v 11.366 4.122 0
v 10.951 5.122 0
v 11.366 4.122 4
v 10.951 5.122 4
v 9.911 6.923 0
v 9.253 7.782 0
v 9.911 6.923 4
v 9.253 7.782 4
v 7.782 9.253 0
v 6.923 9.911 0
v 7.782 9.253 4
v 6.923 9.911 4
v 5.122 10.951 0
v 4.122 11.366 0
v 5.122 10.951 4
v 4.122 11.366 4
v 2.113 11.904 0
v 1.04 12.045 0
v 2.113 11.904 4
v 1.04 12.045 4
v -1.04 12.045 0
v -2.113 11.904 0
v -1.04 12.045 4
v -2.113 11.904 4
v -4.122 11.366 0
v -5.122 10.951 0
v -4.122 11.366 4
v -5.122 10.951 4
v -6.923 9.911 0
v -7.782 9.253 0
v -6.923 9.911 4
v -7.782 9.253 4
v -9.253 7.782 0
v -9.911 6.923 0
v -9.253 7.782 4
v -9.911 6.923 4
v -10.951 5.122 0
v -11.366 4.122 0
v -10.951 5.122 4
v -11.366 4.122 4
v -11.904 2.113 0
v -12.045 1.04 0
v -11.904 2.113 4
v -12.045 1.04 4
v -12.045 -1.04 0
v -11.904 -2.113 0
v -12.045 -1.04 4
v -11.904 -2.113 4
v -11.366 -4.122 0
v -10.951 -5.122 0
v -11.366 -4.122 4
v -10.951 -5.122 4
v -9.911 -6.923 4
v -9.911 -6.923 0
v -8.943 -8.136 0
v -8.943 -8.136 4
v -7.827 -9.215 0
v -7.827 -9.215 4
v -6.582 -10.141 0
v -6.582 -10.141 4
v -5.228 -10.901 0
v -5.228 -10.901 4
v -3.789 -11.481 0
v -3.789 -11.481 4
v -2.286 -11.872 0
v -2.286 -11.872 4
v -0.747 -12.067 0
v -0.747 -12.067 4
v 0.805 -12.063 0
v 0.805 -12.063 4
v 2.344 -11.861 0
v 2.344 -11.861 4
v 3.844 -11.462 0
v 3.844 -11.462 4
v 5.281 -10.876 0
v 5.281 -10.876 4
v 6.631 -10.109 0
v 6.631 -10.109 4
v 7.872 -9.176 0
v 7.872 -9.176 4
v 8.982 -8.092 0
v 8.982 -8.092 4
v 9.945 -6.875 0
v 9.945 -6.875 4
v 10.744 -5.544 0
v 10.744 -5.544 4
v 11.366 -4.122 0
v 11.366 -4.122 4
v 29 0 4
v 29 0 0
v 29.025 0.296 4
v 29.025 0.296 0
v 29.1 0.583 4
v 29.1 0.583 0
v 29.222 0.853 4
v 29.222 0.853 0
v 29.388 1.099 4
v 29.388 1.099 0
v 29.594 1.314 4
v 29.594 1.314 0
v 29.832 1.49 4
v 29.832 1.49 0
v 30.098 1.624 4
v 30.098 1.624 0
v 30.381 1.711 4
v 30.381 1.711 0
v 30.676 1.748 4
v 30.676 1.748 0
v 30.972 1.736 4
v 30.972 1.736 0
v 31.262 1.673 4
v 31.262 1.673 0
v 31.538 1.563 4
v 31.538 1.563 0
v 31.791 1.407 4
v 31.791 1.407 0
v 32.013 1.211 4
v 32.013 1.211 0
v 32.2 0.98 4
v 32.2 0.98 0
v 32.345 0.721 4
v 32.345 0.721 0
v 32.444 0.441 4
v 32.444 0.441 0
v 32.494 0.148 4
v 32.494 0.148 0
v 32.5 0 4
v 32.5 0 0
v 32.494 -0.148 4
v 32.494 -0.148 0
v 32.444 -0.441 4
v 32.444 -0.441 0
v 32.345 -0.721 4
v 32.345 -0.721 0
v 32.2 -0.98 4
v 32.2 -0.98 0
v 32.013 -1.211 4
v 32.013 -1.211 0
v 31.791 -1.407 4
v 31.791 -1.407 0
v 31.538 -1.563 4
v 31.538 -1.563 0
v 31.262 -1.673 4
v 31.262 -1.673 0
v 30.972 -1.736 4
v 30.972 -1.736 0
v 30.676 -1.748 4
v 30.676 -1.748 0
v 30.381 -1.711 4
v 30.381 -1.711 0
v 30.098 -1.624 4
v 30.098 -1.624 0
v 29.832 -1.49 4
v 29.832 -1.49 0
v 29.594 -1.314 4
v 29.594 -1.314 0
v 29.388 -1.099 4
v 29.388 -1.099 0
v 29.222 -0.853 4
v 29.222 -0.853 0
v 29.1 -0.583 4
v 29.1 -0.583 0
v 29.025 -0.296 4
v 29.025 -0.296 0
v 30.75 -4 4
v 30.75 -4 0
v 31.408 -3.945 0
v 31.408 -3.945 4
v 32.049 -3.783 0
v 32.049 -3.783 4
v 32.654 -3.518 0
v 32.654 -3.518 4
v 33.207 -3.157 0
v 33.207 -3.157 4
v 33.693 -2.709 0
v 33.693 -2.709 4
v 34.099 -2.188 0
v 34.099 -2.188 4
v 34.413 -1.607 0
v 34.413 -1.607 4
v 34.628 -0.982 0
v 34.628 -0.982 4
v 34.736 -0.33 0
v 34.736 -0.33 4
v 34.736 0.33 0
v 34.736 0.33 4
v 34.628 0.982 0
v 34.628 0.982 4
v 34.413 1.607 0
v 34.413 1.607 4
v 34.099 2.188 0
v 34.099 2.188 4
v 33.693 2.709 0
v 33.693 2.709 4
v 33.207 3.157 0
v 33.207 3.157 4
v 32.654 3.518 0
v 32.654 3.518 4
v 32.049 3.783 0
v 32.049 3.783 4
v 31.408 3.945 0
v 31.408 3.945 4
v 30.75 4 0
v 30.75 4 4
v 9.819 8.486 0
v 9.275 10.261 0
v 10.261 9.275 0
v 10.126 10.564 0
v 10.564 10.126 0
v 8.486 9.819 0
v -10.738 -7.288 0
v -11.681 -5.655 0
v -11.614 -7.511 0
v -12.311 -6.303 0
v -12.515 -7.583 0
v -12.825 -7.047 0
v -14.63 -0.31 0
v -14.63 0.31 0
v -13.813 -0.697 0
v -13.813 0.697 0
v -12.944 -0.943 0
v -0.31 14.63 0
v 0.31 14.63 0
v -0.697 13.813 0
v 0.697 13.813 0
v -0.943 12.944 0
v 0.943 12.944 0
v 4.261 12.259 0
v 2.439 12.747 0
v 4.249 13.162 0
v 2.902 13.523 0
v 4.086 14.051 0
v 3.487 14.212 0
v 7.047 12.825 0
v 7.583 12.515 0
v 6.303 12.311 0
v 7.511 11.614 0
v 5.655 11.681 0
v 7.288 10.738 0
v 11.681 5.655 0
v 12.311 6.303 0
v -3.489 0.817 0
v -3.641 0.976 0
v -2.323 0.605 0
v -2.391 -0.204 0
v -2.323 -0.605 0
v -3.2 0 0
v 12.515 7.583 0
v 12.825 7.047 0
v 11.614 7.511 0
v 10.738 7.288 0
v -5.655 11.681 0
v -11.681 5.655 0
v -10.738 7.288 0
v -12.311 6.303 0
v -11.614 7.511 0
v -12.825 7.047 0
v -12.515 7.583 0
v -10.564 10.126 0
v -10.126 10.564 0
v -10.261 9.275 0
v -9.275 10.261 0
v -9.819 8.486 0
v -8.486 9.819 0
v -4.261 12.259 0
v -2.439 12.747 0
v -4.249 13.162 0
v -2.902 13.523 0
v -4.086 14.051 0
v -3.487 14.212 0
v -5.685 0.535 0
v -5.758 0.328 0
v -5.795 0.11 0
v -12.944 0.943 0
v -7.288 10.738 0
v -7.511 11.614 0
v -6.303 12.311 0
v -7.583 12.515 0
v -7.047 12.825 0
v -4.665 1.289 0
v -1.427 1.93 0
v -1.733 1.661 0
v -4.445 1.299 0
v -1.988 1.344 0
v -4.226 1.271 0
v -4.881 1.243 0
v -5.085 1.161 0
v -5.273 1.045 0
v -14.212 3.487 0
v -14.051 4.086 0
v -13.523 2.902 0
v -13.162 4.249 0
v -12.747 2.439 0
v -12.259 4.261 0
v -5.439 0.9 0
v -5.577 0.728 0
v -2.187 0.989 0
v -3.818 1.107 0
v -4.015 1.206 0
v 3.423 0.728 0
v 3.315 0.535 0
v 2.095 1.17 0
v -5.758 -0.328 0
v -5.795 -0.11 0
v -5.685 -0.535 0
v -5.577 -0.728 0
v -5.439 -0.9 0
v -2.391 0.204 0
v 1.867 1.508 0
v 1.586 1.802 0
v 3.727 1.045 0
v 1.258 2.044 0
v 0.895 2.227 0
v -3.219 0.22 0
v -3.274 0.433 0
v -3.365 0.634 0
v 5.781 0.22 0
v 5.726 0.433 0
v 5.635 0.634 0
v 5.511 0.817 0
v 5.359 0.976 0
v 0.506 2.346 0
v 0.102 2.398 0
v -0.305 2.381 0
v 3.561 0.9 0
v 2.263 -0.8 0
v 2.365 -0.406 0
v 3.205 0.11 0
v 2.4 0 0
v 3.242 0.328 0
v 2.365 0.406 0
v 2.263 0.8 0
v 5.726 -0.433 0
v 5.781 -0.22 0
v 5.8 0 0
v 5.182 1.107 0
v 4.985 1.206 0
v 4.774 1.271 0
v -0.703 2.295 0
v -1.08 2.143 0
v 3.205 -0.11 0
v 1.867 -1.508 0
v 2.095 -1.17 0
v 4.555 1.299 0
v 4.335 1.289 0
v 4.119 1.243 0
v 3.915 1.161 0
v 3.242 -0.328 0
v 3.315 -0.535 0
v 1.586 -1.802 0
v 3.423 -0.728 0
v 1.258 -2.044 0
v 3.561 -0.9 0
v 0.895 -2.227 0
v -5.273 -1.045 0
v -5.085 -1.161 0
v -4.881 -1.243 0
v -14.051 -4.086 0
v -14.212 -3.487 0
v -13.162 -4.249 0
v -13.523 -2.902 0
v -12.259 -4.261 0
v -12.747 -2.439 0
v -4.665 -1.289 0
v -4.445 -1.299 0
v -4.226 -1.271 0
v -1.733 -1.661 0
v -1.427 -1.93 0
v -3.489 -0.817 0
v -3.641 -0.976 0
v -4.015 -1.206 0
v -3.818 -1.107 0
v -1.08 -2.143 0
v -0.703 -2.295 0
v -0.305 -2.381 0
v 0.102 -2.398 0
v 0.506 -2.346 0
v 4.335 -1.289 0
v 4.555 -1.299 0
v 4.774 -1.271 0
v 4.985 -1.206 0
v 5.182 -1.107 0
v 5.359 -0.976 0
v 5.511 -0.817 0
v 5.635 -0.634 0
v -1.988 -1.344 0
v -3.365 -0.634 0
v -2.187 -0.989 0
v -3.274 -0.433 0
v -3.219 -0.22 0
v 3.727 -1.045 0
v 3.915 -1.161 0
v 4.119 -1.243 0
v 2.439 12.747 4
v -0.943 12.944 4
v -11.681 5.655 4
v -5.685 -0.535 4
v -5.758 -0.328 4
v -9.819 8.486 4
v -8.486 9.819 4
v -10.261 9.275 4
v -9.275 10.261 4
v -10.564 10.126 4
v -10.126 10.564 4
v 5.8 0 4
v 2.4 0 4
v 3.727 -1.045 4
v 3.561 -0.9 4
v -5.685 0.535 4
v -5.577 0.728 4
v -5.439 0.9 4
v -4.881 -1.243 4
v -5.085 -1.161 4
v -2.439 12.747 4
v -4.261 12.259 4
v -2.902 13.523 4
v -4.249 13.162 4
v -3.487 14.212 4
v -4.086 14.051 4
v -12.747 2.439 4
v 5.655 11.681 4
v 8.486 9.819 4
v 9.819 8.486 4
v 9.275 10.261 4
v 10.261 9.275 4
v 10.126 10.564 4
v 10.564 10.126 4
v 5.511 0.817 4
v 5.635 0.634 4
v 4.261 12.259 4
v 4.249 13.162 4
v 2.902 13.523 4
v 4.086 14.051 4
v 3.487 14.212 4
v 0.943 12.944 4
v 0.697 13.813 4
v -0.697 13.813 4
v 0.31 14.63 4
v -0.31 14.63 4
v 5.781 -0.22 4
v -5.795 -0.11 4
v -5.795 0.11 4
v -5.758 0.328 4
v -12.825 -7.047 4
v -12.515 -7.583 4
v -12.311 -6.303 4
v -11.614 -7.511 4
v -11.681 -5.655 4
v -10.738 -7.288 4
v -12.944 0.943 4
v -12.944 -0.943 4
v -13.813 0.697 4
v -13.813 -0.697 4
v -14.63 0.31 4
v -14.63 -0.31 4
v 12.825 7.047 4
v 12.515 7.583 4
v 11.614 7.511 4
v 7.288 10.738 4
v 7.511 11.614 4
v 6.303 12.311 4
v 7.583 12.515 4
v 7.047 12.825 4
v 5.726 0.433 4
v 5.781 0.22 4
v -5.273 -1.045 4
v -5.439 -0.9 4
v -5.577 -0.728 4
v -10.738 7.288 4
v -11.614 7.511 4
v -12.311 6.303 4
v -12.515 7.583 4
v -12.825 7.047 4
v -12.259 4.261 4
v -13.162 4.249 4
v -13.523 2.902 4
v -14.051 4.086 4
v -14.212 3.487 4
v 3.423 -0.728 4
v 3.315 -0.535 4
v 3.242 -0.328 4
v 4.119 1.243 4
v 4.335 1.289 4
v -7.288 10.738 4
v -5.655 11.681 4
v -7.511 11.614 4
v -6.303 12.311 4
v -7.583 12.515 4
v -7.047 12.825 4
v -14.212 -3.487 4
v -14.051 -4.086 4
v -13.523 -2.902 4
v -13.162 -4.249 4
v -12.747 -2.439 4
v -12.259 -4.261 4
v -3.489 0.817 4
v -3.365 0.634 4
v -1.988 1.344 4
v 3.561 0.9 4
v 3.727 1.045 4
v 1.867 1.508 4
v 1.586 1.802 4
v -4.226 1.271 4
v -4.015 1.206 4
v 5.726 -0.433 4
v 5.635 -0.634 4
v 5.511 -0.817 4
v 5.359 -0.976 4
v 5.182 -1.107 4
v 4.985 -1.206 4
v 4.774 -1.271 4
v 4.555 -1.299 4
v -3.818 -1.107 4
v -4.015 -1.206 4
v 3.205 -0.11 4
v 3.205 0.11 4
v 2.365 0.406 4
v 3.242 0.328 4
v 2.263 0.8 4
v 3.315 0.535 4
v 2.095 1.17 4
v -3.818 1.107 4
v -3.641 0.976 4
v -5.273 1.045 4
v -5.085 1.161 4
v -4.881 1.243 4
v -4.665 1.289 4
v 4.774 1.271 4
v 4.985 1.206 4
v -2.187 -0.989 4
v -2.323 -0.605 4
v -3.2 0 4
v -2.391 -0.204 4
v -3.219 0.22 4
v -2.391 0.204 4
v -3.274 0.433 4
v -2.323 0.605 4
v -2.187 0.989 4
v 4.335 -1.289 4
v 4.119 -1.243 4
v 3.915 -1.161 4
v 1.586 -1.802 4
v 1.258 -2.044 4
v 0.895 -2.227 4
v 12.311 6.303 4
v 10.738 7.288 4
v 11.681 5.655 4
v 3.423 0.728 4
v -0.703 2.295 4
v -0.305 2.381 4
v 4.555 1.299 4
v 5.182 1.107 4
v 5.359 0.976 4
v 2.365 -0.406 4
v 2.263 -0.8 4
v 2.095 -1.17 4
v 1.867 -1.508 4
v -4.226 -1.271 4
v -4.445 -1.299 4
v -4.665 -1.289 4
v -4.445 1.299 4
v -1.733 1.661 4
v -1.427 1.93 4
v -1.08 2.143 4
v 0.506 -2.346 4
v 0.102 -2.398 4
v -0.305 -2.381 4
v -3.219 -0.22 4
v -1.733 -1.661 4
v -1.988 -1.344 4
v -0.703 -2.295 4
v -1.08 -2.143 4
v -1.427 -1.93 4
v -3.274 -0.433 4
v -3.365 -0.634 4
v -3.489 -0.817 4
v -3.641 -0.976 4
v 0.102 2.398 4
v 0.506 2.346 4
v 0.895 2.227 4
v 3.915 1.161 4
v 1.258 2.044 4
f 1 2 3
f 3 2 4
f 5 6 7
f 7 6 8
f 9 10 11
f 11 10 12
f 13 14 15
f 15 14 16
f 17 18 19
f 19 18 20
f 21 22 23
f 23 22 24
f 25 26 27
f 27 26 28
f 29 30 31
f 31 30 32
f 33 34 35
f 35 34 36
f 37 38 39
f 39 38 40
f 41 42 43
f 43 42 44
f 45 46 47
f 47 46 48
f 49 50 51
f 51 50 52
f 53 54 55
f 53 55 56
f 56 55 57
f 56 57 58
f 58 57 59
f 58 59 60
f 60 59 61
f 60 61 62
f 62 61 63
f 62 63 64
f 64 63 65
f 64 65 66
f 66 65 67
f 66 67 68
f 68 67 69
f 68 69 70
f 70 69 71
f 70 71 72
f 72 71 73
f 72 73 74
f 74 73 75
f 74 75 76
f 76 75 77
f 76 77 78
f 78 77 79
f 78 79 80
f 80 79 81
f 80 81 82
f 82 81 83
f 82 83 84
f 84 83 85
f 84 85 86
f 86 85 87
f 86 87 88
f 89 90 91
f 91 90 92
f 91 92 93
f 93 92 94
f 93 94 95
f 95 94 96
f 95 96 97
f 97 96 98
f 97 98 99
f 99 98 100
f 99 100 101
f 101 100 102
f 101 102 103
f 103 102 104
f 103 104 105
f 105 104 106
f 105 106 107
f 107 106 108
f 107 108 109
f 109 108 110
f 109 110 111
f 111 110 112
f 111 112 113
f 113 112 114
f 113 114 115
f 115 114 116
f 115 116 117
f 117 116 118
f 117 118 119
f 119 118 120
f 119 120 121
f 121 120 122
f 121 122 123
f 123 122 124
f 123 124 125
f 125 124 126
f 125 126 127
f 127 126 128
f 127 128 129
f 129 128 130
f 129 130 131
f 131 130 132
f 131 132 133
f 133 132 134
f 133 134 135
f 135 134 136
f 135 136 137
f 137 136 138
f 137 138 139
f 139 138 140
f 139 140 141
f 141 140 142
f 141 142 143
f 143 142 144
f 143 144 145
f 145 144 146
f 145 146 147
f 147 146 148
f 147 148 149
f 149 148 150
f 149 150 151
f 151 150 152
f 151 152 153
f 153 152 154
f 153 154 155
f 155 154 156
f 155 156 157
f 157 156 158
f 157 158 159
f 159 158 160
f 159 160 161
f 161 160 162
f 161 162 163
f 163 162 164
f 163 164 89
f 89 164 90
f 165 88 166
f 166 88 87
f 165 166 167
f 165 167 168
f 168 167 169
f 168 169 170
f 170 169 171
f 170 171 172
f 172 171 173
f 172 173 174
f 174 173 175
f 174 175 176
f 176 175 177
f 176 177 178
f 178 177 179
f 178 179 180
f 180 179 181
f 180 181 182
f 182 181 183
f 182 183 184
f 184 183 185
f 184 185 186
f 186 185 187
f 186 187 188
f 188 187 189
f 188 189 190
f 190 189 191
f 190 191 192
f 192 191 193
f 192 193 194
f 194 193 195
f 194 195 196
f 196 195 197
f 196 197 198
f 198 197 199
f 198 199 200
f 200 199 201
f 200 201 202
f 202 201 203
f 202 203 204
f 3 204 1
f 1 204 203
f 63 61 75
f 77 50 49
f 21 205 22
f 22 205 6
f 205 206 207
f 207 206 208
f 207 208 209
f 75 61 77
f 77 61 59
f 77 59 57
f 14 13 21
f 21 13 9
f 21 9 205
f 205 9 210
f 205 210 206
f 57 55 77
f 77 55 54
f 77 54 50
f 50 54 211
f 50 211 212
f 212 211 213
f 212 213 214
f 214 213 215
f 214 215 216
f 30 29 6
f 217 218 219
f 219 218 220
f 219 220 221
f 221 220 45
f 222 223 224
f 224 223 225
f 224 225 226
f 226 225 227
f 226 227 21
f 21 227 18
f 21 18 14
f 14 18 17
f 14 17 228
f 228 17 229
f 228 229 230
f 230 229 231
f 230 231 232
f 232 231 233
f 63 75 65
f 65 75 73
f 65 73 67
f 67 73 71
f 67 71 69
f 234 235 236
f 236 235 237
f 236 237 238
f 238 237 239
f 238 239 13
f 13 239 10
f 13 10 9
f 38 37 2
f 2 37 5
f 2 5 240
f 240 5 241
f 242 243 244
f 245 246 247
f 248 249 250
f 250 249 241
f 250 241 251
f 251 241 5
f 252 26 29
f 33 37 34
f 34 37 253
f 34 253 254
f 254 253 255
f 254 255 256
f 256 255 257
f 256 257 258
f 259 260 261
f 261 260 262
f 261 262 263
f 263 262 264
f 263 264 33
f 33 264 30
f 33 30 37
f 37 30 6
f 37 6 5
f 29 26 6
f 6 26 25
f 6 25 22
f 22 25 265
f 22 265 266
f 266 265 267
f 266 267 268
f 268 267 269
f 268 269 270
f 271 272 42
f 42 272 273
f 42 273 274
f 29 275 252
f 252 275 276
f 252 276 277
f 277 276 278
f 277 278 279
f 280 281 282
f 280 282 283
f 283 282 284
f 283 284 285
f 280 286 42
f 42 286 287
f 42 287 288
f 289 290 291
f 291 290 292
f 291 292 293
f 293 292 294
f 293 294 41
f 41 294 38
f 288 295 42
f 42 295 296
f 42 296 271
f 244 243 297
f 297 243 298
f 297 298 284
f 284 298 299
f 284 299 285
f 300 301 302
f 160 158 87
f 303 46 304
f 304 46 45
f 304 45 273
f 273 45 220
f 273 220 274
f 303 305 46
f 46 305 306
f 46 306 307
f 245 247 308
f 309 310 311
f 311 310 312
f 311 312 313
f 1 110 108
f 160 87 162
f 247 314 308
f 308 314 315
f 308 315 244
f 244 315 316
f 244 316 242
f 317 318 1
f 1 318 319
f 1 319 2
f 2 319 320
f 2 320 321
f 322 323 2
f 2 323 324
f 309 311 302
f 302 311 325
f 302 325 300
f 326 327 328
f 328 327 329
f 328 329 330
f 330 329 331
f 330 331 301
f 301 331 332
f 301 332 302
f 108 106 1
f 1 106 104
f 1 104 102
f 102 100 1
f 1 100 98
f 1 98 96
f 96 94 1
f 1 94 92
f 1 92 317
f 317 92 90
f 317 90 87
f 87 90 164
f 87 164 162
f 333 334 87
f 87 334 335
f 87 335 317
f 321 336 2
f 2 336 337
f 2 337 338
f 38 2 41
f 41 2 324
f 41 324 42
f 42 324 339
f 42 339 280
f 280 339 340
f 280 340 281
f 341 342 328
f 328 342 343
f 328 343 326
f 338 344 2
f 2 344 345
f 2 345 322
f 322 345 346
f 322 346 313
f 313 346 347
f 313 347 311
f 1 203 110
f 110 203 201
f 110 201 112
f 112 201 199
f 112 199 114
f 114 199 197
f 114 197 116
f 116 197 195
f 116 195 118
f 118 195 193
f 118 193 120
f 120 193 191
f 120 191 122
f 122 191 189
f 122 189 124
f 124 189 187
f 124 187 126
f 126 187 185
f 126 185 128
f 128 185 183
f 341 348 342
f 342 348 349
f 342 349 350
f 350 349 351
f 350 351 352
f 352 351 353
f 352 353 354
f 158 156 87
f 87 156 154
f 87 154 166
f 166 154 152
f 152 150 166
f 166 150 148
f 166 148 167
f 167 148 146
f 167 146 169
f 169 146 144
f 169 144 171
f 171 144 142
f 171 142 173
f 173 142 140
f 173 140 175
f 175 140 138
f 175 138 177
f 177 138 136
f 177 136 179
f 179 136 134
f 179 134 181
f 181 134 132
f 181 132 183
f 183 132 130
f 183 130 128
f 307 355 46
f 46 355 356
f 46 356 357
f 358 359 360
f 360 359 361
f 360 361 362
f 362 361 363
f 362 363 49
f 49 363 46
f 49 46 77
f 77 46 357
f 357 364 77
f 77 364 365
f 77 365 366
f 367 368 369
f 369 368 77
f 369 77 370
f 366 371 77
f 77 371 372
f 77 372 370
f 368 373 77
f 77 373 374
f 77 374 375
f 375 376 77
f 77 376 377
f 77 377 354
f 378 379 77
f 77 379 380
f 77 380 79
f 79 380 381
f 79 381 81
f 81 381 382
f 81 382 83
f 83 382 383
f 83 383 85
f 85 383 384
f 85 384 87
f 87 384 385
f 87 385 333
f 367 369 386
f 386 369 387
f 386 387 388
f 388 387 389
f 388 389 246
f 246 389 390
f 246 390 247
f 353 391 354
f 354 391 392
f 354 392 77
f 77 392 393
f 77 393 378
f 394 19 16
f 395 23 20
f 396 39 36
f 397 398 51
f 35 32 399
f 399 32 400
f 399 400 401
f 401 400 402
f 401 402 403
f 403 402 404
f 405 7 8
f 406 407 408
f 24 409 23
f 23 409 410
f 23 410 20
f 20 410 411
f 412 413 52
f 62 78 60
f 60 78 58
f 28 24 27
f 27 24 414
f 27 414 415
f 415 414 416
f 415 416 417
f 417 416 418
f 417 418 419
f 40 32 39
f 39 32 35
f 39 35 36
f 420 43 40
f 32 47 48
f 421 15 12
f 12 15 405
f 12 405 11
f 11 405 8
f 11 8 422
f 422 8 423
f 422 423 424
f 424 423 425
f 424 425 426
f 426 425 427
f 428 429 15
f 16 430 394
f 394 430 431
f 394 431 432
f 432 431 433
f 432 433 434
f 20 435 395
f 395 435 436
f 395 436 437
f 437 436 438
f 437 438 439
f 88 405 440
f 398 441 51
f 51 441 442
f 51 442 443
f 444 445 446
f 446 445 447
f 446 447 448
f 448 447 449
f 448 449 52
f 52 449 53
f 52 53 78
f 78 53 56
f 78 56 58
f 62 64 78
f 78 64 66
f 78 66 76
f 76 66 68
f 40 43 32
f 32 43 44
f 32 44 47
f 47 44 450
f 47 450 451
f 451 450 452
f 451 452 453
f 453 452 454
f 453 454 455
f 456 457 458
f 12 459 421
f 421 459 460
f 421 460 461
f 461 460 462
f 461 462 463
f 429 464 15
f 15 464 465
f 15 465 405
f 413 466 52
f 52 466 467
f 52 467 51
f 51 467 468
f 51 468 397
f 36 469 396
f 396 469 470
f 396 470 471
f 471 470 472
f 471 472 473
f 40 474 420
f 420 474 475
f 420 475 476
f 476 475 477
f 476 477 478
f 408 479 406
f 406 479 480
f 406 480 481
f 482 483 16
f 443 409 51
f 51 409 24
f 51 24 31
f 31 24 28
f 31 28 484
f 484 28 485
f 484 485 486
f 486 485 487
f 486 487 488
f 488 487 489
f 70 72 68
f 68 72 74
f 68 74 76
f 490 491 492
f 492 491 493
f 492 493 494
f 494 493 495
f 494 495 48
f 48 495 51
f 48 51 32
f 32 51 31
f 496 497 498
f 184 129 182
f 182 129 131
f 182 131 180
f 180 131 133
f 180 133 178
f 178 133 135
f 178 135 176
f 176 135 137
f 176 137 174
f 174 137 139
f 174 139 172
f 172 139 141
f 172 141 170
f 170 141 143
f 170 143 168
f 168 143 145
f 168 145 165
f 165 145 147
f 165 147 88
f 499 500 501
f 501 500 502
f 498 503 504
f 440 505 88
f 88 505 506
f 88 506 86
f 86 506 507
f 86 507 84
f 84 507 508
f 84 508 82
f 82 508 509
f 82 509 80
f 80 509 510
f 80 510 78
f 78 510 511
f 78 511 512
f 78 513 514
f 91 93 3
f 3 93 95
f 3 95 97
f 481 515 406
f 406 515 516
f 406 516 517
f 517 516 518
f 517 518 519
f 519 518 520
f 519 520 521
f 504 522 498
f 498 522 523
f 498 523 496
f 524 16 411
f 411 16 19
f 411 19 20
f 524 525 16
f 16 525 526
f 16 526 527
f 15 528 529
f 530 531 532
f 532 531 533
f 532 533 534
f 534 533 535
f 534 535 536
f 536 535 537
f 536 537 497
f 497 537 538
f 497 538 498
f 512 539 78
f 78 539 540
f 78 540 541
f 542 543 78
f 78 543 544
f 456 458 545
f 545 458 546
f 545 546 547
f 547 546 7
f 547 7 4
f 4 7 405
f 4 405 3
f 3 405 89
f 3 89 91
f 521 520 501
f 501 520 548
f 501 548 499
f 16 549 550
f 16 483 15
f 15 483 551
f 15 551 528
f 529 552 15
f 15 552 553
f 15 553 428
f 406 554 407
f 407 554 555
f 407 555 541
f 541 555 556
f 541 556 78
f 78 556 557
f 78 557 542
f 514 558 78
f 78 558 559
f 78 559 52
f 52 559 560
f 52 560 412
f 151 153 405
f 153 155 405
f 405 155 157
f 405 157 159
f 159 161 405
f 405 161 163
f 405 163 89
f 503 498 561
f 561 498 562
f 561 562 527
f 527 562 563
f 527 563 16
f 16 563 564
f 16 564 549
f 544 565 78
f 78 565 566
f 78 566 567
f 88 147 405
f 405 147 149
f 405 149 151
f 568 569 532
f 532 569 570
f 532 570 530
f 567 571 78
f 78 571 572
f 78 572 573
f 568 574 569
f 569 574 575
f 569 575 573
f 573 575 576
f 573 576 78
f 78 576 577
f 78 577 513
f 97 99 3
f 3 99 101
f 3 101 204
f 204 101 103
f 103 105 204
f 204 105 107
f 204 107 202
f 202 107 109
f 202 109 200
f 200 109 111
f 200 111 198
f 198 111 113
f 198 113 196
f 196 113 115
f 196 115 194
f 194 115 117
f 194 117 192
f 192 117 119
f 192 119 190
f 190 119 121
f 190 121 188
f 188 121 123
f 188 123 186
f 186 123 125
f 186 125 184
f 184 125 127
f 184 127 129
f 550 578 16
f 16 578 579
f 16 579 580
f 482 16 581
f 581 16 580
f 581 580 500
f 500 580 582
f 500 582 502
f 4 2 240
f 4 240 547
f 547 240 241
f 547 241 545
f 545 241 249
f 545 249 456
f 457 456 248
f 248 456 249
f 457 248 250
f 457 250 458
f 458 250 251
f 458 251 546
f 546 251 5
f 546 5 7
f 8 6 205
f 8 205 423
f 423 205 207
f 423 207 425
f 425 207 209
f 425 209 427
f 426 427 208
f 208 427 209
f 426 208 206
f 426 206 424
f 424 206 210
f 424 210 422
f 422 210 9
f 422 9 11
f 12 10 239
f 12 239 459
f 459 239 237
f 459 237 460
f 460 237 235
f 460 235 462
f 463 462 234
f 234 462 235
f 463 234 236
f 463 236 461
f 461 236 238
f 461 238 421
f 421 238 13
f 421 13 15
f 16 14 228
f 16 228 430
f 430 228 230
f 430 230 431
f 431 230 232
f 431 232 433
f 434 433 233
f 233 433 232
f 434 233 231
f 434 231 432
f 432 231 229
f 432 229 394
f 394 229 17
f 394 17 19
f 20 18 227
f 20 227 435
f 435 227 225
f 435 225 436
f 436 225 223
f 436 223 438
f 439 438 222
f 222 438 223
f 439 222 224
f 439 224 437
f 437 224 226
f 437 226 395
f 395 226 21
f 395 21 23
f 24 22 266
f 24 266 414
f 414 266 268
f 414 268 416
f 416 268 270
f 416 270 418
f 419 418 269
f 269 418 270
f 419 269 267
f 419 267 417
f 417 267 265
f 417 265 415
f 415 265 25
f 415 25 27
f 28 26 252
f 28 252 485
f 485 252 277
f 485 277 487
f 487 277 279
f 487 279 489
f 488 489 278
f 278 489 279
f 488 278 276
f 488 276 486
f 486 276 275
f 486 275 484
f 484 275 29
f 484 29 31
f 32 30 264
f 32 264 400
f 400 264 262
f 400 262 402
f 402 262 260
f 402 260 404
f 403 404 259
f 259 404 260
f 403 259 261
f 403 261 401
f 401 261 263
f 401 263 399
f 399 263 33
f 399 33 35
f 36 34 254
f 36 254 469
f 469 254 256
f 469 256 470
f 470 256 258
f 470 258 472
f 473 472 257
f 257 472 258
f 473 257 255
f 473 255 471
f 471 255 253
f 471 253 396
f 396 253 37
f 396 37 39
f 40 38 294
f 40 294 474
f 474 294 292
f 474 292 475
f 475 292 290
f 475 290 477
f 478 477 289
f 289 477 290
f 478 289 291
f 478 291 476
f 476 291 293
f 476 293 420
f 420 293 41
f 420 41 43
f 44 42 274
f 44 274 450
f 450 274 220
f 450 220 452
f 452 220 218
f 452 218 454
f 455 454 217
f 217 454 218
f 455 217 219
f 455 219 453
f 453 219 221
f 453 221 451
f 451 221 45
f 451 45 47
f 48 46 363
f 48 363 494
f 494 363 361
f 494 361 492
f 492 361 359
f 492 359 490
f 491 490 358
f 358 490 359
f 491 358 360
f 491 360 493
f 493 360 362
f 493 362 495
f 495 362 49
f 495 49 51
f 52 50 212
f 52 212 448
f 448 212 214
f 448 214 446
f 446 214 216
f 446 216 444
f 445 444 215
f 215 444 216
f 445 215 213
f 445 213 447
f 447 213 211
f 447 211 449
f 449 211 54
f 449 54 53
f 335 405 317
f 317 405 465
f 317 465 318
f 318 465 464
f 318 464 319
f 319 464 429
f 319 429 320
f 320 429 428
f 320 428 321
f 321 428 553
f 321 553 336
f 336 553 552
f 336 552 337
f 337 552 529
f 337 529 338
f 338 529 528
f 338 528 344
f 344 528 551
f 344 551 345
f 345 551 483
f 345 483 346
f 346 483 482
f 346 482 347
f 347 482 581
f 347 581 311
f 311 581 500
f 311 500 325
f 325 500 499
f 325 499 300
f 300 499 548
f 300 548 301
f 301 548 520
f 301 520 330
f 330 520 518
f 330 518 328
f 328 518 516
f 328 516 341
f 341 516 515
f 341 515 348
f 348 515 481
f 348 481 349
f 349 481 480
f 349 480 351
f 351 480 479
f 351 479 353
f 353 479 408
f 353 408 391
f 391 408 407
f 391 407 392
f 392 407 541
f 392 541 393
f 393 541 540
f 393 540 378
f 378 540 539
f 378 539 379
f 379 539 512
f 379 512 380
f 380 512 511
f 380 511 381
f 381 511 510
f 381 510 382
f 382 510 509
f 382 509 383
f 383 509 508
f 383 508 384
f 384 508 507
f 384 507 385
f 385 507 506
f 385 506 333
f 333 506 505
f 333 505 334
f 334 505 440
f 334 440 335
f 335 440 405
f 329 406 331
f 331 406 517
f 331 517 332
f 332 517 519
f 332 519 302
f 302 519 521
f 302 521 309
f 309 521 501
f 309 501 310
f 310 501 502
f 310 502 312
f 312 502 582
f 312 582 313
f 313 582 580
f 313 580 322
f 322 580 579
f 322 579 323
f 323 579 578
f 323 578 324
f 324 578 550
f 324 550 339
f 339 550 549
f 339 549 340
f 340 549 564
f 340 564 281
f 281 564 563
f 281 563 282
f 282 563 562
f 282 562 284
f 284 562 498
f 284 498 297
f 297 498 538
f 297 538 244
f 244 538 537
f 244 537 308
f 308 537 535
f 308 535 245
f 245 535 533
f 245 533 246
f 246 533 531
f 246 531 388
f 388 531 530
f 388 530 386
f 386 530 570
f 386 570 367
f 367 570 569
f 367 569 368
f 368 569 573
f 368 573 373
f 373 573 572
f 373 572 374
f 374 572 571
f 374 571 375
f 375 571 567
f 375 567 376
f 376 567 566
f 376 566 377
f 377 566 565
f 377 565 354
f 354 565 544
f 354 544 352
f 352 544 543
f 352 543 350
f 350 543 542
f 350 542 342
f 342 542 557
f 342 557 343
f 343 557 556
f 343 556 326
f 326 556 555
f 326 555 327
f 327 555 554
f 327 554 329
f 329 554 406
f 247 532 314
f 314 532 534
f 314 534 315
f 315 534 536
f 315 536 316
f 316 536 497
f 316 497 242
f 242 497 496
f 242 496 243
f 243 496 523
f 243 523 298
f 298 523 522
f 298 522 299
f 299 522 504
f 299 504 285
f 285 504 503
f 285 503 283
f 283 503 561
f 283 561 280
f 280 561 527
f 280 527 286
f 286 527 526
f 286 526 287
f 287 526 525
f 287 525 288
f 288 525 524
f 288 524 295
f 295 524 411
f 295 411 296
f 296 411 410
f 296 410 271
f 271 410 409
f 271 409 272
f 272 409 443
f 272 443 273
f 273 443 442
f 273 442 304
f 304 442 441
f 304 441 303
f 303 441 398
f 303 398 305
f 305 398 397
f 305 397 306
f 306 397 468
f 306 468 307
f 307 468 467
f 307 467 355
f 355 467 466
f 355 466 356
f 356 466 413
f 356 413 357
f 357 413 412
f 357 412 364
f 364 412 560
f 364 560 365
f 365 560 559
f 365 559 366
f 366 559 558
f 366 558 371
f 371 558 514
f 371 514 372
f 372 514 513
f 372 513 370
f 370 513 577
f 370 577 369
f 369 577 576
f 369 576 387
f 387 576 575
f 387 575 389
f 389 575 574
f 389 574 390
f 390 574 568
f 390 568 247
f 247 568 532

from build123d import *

# Parameters (mm, degrees)
SKETCH1_R           = 1.75
BOSS_EXTRUDE1_DEPTH = 4
SKETCH2_R           = 1.75
CUT_EXTRUDE2_DEPTH  = 38.915688046
SKETCH3_R           = 2.4
SKETCH3_R_2         = 1.3
CUT_EXTRUDE3_DEPTH  = 38.915688046


with BuildPart() as part:
    # Sketch1 → Boss-Extrude1 (new body)
    with BuildSketch(Plane.XY):
        with BuildLine():
            Line((0.31, 14.63), (-0.31, 14.63))
            ThreePointArc((-0.31, 14.63), (-0.838273314, 13.383704325), (-1.04, 12.04518576))
            ThreePointArc((-1.04, 12.04518576), (-1.578061664, 11.986568374), (-2.112960617, 11.903927815))
            ThreePointArc((-2.112960617, 11.903927815), (-2.65424773, 13.144626757), (-3.487085624, 14.211728743))
            Line((-3.487085624, 14.211728743), (-4.085959636, 14.051260935))
            ThreePointArc((-4.085959636, 14.051260935), (-4.273667417, 12.71070456), (-4.122086336, 11.365584201))
            ThreePointArc((-4.122086336, 11.365584201), (-4.626642697, 11.169703548), (-5.12192646, 10.951436862))
            ThreePointArc((-5.12192646, 10.951436862), (-5.965886177, 12.009764599), (-7.046532125, 12.824951657))
            Line((-7.046532125, 12.824951657), (-7.583467875, 12.514951657))
            ThreePointArc((-7.583467875, 12.514951657), (-7.417818147, 11.171491285), (-6.9232593, 9.911436862))
            ThreePointArc((-6.9232593, 9.911436862), (-7.359925677, 9.591641884), (-7.781841479, 9.252623584))
            ThreePointArc((-7.781841479, 9.252623584), (-8.870959341, 10.05645683), (-10.125769107, 10.564175311))
            Line((-10.125769107, 10.564175311), (-10.564175311, 10.125769107))
            ThreePointArc((-10.564175311, 10.125769107), (-10.05645683, 8.870959341), (-9.252623584, 7.781841479))
            ThreePointArc((-9.252623584, 7.781841479), (-9.591641884, 7.359925677), (-9.911436862, 6.9232593))
            ThreePointArc((-9.911436862, 6.9232593), (-11.171491285, 7.417818147), (-12.514951657, 7.583467875))
            Line((-12.514951657, 7.583467875), (-12.824951657, 7.046532125))
            ThreePointArc((-12.824951657, 7.046532125), (-12.009764599, 5.965886177), (-10.951436862, 5.12192646))
            ThreePointArc((-10.951436862, 5.12192646), (-11.169703548, 4.626642697), (-11.365584201, 4.122086336))
            ThreePointArc((-11.365584201, 4.122086336), (-12.71070456, 4.273667417), (-14.051260935, 4.085959636))
            Line((-14.051260935, 4.085959636), (-14.211728743, 3.487085624))
            ThreePointArc((-14.211728743, 3.487085624), (-13.144626757, 2.65424773), (-11.903927815, 2.112960617))
            ThreePointArc((-11.903927815, 2.112960617), (-11.986568374, 1.578061664), (-12.04518576, 1.04))
            ThreePointArc((-12.04518576, 1.04), (-13.383704325, 0.838273314), (-14.63, 0.31))
            Line((-14.63, 0.31), (-14.63, -0.31))
            ThreePointArc((-14.63, -0.31), (-13.383704325, -0.838273314), (-12.04518576, -1.04))
            ThreePointArc((-12.04518576, -1.04), (-11.986568374, -1.578061664), (-11.903927815, -2.112960617))
            ThreePointArc((-11.903927815, -2.112960617), (-13.144626757, -2.65424773), (-14.211728743, -3.487085624))
            Line((-14.211728743, -3.487085624), (-14.051260935, -4.085959636))
            ThreePointArc((-14.051260935, -4.085959636), (-12.71070456, -4.273667417), (-11.365584201, -4.122086336))
            ThreePointArc((-11.365584201, -4.122086336), (-11.169703548, -4.626642697), (-10.951436862, -5.12192646))
            ThreePointArc((-10.951436862, -5.12192646), (-12.009764599, -5.965886177), (-12.824951657, -7.046532125))
            Line((-12.824951657, -7.046532125), (-12.514951657, -7.583467875))
            ThreePointArc((-12.514951657, -7.583467875), (-11.171491285, -7.417818147), (-9.911436862, -6.9232593))
            ThreePointArc((-9.911436862, -6.9232593), (1.578061664, -11.986568374), (11.365584201, -4.122086336))
            Line((11.365584201, -4.122086336), (30.75, -4))
            ThreePointArc((30.75, -4), (34.75, 0), (30.75, 4))
            Line((30.75, 4), (11.365584201, 4.122086336))
            ThreePointArc((11.365584201, 4.122086336), (11.169703548, 4.626642697), (10.951436862, 5.12192646))
            ThreePointArc((10.951436862, 5.12192646), (12.009764599, 5.965886177), (12.824951657, 7.046532125))
            Line((12.824951657, 7.046532125), (12.514951657, 7.583467875))
            ThreePointArc((12.514951657, 7.583467875), (11.171491285, 7.417818147), (9.911436862, 6.9232593))
            ThreePointArc((9.911436862, 6.9232593), (9.591641884, 7.359925677), (9.252623584, 7.781841479))
            ThreePointArc((9.252623584, 7.781841479), (10.05645683, 8.870959341), (10.564175311, 10.125769107))
            Line((10.564175311, 10.125769107), (10.125769107, 10.564175311))
            ThreePointArc((10.125769107, 10.564175311), (8.870959341, 10.05645683), (7.781841479, 9.252623584))
            ThreePointArc((7.781841479, 9.252623584), (7.359925677, 9.591641884), (6.9232593, 9.911436862))
            ThreePointArc((6.9232593, 9.911436862), (7.417818147, 11.171491285), (7.583467875, 12.514951657))
            Line((7.583467875, 12.514951657), (7.046532125, 12.824951657))
            ThreePointArc((7.046532125, 12.824951657), (5.965886177, 12.009764599), (5.12192646, 10.951436862))
            ThreePointArc((5.12192646, 10.951436862), (4.626642697, 11.169703548), (4.122086336, 11.365584201))
            ThreePointArc((4.122086336, 11.365584201), (4.273667417, 12.71070456), (4.085959636, 14.051260935))
            Line((4.085959636, 14.051260935), (3.487085624, 14.211728743))
            ThreePointArc((3.487085624, 14.211728743), (2.65424773, 13.144626757), (2.112960617, 11.903927815))
            ThreePointArc((2.112960617, 11.903927815), (1.578061664, 11.986568374), (1.04, 12.04518576))
            ThreePointArc((1.04, 12.04518576), (0.838273314, 13.383704325), (0.31, 14.63))
        make_face()
        with Locations((30.75, 0)):
            Circle(SKETCH1_R, mode=Mode.SUBTRACT)
    extrude(amount=BOSS_EXTRUDE1_DEPTH)

    # Sketch2 → Cut-Extrude2 (cut, through all)
    with BuildSketch(Plane.XY.offset(4)):
        Circle(SKETCH2_R)
    extrude(amount=-CUT_EXTRUDE2_DEPTH, mode=Mode.SUBTRACT)

    # Sketch3 → Cut-Extrude3 (cut, through all)
    with BuildSketch(Plane.XY.offset(4)):
        Circle(SKETCH3_R)
        with Locations((-4.5, 0)):
            Circle(SKETCH3_R_2)
        with Locations((4.5, 0)):
            Circle(SKETCH3_R_2)
    extrude(amount=-CUT_EXTRUDE3_DEPTH, mode=Mode.SUBTRACT)


solid = part.part
